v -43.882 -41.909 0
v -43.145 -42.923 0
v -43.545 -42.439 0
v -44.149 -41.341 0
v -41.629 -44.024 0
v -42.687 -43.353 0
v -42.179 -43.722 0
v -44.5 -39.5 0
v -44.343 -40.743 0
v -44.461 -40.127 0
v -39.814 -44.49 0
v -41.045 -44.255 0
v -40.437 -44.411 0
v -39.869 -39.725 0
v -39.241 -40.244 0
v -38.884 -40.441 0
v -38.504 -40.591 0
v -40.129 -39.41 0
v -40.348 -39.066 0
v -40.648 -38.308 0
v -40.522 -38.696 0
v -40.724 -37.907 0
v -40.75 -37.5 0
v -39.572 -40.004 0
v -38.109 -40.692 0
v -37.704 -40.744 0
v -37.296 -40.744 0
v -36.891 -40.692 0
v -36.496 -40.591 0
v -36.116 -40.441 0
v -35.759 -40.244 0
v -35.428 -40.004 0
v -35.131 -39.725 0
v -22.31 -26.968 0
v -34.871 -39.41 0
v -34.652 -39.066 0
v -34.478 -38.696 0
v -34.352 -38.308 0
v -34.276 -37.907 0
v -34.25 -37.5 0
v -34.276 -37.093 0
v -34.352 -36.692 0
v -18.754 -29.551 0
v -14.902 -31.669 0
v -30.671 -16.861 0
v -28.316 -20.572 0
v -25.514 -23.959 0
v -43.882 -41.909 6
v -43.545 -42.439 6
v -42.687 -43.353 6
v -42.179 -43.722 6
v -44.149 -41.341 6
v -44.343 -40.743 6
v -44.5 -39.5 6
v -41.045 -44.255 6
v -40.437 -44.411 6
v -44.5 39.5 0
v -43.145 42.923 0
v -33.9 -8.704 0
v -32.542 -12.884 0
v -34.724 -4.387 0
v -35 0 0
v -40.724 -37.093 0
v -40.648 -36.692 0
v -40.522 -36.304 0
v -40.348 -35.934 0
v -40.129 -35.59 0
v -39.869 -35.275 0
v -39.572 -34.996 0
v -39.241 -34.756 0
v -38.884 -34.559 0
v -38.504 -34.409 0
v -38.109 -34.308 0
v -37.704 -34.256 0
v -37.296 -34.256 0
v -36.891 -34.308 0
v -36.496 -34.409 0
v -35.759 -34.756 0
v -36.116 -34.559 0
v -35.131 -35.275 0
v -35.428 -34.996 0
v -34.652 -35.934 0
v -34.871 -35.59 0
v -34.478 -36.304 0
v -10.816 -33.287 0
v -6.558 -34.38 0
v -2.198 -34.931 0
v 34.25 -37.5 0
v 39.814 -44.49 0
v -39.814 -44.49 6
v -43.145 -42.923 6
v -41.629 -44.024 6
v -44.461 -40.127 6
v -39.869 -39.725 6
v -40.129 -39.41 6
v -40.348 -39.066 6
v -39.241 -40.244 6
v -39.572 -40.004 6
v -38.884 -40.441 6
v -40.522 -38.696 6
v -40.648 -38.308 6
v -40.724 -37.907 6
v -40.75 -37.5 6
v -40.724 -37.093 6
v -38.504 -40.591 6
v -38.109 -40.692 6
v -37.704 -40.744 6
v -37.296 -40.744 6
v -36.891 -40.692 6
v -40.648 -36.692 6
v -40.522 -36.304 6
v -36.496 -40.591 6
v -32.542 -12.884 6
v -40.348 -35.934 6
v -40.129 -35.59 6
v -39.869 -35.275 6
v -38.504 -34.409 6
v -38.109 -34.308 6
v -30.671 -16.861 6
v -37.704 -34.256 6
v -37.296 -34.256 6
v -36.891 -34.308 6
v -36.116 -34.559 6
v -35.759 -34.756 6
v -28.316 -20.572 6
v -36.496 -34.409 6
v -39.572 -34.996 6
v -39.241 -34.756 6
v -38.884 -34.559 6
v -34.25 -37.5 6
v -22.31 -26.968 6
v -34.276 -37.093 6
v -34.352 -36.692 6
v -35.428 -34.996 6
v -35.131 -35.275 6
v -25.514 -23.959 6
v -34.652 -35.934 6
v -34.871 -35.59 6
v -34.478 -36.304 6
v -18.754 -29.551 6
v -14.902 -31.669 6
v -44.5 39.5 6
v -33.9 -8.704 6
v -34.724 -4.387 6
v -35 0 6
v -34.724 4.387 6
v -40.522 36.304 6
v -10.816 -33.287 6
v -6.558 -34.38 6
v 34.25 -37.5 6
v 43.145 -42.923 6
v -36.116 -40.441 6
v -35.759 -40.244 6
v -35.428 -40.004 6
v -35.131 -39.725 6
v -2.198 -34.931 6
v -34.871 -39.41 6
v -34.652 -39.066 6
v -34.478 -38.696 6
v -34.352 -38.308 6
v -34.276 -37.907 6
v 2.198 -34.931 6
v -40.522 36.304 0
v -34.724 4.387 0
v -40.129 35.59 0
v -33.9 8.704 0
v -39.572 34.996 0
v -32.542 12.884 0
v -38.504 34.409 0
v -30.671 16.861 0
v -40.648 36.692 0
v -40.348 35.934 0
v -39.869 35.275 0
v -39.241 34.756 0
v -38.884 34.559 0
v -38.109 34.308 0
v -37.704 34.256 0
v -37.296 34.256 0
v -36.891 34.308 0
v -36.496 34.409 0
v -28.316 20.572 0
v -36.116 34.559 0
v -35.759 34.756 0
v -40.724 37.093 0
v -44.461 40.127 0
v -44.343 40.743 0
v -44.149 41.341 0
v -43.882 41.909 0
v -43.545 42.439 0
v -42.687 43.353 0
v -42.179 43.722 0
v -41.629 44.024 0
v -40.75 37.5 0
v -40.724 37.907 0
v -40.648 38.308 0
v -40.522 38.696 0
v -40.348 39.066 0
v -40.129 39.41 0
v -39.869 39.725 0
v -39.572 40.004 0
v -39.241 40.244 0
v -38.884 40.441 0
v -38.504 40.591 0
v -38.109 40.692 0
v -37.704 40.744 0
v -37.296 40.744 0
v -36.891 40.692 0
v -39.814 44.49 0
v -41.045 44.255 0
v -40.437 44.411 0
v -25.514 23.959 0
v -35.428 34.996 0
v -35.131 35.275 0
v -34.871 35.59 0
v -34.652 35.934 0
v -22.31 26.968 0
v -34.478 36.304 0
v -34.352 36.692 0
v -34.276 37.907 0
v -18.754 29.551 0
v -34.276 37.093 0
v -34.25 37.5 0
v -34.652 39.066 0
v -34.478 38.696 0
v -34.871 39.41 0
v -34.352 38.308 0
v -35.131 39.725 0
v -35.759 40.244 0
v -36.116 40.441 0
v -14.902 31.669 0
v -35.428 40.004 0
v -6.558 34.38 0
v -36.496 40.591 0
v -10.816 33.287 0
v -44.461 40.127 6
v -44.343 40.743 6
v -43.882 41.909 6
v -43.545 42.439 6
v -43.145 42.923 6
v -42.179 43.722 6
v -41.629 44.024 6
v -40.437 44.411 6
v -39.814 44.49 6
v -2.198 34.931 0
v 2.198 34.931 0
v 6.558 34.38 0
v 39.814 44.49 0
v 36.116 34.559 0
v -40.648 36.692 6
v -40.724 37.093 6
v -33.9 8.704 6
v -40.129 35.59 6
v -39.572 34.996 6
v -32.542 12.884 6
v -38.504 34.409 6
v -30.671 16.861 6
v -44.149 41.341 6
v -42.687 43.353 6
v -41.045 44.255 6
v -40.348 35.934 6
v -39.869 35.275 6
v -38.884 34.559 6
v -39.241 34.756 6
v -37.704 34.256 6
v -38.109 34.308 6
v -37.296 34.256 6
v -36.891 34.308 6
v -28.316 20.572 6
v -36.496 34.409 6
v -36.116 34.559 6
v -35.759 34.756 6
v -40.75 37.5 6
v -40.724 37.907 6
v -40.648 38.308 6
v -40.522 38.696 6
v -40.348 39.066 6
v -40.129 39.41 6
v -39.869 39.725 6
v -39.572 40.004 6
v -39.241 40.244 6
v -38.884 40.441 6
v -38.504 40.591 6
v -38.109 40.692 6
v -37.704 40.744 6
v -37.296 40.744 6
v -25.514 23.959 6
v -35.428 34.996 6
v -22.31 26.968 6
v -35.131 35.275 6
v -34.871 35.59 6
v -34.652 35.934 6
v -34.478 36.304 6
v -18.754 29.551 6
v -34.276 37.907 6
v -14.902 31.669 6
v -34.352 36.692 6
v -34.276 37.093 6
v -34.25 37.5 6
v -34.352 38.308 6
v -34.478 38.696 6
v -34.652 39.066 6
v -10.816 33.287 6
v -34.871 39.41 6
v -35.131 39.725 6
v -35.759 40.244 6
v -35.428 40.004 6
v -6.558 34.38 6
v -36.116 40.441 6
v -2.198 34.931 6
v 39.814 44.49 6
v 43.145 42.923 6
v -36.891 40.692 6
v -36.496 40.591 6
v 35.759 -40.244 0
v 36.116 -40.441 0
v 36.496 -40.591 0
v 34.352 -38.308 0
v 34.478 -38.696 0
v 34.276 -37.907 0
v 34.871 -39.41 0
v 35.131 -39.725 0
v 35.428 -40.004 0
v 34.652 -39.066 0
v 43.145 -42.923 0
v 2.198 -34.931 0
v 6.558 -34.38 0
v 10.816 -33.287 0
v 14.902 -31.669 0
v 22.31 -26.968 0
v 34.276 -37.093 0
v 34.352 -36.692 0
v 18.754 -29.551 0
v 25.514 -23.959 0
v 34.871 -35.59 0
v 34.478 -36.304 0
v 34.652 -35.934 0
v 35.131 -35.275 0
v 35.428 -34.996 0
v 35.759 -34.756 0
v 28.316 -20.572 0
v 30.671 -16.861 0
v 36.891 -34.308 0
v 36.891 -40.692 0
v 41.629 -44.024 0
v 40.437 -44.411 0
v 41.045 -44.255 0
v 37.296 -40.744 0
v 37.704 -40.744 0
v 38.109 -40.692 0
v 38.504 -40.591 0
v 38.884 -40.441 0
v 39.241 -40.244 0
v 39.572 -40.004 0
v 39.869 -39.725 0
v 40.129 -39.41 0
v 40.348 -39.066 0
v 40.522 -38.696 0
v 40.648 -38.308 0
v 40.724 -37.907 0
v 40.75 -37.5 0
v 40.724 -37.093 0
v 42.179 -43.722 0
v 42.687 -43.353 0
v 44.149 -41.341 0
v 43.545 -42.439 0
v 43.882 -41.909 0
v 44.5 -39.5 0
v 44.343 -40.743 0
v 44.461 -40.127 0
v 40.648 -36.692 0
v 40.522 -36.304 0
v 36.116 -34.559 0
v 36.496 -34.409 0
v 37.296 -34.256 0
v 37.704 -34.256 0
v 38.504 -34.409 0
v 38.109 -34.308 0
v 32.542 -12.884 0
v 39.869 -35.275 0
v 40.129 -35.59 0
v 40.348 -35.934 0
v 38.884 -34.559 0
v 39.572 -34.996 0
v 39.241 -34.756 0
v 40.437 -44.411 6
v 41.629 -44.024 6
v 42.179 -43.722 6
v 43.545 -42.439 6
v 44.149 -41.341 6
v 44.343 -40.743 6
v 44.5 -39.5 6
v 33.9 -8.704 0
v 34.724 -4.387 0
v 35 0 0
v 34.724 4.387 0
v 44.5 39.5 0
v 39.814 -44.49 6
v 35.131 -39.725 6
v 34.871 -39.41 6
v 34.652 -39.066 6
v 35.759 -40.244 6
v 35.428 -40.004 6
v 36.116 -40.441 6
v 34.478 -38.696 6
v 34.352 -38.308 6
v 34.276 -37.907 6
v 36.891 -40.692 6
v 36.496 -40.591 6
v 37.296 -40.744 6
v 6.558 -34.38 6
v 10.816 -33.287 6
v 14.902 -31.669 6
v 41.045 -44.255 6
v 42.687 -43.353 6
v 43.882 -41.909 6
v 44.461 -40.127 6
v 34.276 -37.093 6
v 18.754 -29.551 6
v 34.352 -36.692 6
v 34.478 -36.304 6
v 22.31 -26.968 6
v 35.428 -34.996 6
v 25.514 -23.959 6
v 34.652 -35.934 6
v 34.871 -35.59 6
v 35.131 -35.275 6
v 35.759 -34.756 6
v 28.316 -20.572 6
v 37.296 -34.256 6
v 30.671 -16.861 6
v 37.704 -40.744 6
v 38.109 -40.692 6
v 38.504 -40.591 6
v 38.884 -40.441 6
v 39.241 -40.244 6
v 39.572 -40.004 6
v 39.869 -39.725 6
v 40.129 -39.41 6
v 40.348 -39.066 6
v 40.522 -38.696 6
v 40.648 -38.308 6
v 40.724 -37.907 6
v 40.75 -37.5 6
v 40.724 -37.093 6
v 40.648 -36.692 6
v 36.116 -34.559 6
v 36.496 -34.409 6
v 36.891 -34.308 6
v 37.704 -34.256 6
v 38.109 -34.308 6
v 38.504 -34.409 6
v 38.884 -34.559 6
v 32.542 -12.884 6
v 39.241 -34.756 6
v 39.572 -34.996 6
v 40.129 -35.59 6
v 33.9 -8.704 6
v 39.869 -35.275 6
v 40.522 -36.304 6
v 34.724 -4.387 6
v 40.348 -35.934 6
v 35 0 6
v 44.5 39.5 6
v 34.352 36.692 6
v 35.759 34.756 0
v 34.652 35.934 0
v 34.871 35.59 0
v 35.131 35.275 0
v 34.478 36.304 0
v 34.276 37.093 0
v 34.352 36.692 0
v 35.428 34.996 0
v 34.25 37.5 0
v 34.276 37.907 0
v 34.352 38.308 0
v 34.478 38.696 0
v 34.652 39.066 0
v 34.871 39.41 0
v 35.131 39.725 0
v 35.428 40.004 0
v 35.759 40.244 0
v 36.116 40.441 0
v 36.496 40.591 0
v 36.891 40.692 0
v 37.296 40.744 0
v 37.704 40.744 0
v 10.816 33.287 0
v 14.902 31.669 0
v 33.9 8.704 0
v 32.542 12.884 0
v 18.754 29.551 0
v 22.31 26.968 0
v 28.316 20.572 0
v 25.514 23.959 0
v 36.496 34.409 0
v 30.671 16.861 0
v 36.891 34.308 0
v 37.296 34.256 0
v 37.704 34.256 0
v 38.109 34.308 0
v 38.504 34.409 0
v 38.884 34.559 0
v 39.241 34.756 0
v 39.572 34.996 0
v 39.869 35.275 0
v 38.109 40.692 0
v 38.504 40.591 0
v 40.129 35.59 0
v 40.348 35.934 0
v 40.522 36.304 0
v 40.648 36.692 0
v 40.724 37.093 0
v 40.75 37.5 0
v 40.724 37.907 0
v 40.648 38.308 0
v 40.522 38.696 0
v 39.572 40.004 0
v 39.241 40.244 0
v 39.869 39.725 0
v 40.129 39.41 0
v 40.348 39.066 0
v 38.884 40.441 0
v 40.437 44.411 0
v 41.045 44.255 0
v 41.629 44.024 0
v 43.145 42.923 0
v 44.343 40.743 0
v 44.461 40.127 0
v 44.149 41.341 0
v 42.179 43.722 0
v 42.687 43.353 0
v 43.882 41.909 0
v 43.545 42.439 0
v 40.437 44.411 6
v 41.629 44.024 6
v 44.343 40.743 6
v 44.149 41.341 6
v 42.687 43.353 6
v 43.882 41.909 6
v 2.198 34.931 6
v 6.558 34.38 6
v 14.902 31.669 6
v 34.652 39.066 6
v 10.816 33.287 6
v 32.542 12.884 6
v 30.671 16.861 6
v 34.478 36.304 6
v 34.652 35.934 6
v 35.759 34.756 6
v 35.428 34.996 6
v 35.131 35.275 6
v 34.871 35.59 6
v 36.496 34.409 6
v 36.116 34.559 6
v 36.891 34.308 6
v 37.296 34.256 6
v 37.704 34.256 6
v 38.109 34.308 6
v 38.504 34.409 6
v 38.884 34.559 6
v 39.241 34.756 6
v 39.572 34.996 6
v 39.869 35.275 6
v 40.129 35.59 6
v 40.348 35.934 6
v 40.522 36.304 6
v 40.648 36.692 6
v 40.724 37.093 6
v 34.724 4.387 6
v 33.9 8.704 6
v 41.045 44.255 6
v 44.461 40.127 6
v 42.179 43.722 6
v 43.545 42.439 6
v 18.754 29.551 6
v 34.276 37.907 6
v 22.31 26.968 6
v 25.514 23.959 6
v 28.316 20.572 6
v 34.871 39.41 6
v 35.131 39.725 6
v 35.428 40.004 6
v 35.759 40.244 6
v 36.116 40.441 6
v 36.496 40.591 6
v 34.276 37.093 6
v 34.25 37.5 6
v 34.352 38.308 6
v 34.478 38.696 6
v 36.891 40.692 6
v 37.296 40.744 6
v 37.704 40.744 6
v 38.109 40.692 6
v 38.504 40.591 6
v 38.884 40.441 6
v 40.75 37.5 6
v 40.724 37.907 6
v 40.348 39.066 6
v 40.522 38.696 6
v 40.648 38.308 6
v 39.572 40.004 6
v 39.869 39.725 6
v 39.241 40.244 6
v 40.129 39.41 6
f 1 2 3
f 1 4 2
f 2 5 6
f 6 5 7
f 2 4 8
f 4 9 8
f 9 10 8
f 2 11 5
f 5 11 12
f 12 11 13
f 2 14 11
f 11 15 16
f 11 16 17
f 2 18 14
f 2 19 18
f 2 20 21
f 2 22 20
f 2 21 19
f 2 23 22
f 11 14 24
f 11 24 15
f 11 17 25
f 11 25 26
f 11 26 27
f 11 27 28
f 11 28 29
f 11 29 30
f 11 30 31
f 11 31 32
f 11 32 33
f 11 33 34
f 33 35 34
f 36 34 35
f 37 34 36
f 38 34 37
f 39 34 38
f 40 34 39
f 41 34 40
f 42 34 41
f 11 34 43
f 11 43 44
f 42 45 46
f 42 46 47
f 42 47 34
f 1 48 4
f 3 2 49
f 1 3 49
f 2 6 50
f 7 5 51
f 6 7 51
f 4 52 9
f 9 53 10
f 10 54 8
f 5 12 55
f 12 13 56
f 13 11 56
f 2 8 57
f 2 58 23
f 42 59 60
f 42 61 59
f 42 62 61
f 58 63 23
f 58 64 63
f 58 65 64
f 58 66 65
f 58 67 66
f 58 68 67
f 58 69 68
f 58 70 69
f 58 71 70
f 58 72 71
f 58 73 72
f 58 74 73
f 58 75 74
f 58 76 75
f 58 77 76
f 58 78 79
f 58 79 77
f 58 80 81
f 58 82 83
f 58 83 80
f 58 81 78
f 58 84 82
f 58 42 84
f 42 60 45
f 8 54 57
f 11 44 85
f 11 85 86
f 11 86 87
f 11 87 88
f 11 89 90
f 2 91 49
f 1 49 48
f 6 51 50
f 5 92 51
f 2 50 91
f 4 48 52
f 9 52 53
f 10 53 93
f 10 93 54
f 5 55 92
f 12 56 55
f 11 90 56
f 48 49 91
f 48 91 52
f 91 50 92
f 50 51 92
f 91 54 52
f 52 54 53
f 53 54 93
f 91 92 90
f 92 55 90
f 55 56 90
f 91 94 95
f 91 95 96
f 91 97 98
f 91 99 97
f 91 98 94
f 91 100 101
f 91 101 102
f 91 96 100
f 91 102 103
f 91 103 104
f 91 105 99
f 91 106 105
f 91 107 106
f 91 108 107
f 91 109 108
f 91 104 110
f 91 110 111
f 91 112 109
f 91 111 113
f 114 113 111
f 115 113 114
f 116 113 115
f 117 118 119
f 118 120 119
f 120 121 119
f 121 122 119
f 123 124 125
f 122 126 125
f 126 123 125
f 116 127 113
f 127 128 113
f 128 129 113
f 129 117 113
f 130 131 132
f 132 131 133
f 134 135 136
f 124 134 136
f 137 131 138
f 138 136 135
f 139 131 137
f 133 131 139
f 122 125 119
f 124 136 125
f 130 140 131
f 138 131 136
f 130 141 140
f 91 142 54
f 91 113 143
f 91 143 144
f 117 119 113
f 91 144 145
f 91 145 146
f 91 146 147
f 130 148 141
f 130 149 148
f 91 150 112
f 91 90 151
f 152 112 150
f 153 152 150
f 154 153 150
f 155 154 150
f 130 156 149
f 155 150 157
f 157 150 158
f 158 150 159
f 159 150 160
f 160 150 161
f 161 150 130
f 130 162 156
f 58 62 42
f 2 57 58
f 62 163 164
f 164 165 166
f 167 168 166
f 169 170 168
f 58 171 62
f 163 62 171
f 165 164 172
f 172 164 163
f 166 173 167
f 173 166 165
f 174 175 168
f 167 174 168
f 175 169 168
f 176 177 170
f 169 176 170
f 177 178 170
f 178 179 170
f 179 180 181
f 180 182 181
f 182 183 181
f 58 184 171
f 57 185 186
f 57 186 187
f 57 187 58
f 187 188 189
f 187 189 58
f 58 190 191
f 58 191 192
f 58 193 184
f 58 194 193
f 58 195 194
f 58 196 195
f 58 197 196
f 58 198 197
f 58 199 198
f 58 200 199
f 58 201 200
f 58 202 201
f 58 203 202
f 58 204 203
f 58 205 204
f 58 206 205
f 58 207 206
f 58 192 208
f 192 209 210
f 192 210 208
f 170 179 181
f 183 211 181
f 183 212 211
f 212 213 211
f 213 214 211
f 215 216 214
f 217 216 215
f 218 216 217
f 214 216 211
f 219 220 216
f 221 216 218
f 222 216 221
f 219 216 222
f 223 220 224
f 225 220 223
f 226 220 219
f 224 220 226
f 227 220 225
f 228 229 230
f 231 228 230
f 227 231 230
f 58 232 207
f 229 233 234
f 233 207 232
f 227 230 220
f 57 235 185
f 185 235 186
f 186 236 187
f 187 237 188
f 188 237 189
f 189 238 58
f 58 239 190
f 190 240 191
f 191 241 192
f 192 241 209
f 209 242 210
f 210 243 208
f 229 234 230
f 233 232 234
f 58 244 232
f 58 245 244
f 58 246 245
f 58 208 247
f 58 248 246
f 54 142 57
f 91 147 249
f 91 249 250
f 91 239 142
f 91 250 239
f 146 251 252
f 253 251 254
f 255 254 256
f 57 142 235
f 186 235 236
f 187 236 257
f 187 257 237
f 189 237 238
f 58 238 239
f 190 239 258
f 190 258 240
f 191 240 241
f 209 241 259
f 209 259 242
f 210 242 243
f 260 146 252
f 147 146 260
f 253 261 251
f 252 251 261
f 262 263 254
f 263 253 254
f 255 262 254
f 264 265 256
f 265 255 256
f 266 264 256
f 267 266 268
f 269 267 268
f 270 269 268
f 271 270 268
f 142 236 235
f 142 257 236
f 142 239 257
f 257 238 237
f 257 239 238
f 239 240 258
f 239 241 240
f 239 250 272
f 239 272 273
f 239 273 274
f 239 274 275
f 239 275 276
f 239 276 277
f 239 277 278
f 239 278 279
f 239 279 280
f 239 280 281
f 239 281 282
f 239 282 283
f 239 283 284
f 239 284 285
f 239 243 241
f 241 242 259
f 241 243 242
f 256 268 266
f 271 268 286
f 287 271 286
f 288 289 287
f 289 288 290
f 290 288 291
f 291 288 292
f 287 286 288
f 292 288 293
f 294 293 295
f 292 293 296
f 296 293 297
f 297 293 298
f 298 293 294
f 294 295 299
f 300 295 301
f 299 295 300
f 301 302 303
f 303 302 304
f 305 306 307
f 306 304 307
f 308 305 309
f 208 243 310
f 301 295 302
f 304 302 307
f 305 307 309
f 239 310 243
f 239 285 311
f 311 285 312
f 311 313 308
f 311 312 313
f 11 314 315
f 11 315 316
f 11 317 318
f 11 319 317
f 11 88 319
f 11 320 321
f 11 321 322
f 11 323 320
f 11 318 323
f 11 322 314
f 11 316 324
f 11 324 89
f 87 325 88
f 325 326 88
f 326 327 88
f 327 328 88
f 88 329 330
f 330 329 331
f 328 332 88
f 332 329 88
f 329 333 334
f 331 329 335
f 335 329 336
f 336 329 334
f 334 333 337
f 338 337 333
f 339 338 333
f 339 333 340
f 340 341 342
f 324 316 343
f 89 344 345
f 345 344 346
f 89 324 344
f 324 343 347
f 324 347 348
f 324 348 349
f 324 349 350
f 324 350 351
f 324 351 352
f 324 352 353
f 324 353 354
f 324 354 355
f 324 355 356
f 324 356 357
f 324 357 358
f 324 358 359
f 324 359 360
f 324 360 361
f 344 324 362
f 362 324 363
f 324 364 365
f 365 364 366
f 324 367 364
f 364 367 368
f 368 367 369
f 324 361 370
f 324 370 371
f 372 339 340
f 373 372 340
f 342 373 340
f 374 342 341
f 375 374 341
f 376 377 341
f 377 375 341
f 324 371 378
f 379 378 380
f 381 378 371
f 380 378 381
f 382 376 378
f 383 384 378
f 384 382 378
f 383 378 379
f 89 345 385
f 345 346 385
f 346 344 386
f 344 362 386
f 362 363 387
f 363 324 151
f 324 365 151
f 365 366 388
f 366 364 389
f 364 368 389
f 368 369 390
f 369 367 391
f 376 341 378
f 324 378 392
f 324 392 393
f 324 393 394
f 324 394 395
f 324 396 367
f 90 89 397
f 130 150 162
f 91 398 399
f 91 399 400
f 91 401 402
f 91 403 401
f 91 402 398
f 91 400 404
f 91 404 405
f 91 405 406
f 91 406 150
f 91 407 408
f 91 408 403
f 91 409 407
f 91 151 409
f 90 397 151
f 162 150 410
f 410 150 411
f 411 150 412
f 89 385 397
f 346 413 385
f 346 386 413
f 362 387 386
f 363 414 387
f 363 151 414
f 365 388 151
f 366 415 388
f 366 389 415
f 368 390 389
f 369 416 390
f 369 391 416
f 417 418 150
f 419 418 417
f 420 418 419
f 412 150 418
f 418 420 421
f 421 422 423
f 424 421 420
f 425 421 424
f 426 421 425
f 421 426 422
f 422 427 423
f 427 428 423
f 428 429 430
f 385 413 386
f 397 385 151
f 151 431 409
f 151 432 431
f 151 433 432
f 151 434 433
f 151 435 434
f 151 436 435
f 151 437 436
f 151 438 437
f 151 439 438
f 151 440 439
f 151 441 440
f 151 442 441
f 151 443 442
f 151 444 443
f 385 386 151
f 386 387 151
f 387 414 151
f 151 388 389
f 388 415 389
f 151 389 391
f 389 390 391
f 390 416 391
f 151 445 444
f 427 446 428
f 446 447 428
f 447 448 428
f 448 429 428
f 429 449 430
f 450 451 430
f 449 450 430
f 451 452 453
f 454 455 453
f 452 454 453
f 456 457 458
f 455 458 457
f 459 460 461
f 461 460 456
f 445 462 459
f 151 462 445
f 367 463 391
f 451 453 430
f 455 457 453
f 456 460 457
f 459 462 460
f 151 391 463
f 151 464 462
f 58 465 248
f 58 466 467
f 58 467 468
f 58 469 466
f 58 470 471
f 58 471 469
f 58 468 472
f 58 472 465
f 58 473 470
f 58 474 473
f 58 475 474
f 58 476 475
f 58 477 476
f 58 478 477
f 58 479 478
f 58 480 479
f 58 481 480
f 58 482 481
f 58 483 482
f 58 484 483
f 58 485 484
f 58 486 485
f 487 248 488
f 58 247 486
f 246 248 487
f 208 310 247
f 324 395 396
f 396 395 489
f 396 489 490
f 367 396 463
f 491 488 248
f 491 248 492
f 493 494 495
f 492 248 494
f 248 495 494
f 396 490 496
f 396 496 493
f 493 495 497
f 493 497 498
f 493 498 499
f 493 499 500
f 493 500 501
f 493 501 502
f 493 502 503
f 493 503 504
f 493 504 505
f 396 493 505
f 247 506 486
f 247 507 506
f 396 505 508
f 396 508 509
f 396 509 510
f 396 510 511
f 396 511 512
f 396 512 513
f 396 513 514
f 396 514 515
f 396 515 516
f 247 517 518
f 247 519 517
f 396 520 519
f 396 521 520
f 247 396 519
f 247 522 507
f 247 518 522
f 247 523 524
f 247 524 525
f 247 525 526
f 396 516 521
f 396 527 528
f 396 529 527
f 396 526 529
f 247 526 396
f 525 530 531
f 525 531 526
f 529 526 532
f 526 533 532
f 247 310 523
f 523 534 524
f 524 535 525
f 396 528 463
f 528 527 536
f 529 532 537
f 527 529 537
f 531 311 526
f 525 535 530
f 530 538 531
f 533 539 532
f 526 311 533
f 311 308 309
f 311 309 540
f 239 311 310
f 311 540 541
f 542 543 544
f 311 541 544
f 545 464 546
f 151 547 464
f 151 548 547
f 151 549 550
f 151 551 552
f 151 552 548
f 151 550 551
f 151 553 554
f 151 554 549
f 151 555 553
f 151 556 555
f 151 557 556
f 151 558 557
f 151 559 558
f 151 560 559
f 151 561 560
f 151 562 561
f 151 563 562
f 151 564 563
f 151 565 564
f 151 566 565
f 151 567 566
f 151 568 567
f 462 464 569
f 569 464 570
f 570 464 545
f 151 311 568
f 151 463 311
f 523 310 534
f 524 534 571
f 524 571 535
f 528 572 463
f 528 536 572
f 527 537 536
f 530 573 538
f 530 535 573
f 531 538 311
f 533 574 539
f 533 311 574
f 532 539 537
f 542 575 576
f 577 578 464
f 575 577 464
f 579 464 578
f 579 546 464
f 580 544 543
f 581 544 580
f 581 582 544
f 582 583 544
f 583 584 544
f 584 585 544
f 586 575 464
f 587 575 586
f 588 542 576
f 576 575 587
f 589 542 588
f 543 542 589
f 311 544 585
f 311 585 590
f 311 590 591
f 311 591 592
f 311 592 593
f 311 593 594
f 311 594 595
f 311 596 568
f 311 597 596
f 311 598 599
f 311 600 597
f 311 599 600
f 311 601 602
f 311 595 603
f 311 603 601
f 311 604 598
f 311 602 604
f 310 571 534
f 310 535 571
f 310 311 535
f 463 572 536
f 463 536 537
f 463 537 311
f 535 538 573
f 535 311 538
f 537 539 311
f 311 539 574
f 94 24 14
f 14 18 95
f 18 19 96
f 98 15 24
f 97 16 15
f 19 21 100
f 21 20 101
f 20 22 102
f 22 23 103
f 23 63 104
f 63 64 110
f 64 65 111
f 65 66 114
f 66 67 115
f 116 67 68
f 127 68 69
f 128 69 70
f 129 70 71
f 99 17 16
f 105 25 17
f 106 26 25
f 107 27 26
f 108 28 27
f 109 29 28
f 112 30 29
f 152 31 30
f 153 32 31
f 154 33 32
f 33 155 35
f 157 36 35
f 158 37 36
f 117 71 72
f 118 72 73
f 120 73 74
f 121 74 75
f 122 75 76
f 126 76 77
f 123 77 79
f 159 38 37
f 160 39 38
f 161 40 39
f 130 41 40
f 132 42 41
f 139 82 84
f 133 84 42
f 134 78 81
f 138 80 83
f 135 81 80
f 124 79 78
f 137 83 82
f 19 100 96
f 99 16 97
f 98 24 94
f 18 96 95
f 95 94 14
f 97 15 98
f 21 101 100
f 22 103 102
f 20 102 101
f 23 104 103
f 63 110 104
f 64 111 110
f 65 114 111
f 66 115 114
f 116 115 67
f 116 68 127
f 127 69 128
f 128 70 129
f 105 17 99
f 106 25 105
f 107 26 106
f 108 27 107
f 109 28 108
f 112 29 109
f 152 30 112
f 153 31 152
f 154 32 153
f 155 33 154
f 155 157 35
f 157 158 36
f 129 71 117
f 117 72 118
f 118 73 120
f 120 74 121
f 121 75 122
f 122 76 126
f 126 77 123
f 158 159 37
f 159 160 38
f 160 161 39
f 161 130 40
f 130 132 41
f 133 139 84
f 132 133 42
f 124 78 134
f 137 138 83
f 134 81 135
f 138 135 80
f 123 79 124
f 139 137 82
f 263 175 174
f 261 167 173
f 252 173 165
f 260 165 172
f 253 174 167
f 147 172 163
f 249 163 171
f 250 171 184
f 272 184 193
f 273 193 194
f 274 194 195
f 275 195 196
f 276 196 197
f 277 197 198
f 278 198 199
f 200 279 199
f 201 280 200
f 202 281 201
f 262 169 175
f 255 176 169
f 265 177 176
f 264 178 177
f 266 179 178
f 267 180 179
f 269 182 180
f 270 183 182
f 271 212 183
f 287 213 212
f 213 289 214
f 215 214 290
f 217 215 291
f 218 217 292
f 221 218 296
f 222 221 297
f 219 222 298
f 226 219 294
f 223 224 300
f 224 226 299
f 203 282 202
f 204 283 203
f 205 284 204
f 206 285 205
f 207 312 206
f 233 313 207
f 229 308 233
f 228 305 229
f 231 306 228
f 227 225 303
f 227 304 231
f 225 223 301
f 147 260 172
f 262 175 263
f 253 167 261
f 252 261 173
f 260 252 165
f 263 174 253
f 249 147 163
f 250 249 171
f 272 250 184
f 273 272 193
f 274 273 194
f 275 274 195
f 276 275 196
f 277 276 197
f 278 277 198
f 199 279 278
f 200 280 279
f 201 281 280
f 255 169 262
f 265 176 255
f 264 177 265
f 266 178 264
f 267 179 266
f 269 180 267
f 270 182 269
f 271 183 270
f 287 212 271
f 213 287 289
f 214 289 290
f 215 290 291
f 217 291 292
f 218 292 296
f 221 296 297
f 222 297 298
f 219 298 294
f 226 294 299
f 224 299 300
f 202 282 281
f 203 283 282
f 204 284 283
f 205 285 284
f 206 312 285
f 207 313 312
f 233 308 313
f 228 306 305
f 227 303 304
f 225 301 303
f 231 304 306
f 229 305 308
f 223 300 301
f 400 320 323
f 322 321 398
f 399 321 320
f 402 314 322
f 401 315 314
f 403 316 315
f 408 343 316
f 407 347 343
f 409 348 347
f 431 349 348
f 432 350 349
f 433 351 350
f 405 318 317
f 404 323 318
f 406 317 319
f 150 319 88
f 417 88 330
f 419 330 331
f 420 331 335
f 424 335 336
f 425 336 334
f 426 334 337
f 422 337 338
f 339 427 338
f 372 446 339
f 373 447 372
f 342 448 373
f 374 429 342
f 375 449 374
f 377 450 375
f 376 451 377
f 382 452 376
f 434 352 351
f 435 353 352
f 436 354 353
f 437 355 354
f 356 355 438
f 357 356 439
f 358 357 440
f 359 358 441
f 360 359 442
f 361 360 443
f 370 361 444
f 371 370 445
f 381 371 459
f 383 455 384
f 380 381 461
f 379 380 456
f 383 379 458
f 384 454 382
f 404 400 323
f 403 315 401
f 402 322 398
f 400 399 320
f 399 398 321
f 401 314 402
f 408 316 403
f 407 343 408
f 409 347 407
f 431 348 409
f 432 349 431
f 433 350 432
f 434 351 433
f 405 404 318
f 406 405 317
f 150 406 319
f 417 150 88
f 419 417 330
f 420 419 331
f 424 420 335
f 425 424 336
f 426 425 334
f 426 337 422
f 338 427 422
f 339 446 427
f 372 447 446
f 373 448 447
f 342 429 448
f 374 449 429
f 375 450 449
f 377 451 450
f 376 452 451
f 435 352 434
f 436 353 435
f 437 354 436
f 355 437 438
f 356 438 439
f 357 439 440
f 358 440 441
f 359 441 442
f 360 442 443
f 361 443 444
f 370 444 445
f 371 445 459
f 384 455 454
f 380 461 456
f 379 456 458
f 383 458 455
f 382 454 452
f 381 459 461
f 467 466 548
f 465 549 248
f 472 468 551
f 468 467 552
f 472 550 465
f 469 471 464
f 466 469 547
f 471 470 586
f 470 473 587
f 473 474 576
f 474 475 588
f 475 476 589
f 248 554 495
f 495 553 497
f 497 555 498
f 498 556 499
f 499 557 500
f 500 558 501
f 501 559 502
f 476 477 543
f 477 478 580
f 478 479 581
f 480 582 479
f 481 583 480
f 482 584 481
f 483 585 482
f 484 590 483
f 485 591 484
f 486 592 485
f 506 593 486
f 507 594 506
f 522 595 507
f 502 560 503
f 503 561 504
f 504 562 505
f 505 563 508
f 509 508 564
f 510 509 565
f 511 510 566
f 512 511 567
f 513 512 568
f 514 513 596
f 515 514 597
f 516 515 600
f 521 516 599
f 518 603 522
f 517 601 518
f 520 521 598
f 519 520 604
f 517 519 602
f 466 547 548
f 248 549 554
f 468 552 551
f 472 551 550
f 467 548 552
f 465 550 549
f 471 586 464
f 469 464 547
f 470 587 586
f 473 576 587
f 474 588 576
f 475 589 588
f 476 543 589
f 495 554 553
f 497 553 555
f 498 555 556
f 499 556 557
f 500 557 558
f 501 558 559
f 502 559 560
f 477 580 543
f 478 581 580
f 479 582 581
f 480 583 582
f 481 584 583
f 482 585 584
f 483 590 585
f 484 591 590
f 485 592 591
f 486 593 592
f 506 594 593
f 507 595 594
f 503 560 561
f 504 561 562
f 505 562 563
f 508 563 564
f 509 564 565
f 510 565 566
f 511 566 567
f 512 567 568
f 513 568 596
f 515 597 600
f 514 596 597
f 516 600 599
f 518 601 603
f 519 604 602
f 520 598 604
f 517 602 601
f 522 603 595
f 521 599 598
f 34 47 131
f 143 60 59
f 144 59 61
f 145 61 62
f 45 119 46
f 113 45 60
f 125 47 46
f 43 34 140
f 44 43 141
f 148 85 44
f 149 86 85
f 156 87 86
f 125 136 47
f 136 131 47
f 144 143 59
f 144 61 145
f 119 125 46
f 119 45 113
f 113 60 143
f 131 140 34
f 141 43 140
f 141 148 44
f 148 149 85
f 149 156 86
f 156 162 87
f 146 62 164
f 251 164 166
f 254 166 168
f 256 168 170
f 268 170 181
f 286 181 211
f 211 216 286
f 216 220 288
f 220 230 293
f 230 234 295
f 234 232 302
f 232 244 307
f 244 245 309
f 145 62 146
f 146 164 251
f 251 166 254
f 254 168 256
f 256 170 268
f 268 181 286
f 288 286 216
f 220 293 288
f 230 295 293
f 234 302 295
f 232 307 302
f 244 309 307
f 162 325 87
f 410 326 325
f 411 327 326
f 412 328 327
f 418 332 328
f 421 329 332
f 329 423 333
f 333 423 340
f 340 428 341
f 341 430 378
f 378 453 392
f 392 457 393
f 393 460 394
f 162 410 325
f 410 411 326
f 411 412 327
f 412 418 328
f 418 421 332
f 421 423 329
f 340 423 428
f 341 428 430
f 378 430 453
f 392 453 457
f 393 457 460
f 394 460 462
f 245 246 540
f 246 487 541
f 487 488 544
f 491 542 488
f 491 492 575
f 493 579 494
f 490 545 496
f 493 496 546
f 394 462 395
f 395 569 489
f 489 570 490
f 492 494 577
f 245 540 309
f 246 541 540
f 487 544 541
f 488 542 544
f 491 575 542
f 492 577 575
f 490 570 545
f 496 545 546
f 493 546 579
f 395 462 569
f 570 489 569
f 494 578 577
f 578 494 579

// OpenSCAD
$fn = 50;

difference() {
	union() {
		hull() {
			translate(v = [-39.5, 39.5, 0]) {
				cylinder(h = 6, r = 5);
			}
			translate(v = [39.5, 39.5, 0]) {
				cylinder(h = 6, r = 5);
			}
			translate(v = [-39.5, -39.5, 0]) {
				cylinder(h = 6, r = 5);
			}
			translate(v = [39.5, -39.5, 0]) {
				cylinder(h = 6, r = 5);
			}
		}
	}
	union() {
		translate(v = [-37.5, -37.5, -100.0]) {
			cylinder(h = 200, r = 3.25);
		}
		translate(v = [-37.5, 37.5, -100.0]) {
			cylinder(h = 200, r = 3.25);
		}
		translate(v = [37.5, -37.5, -100.0]) {
			cylinder(h = 200, r = 3.25);
		}
		translate(v = [37.5, 37.5, -100.0]) {
			cylinder(h = 200, r = 3.25);
		}
		translate(v = [-37.5, -37.5, -100.0]) {
			cylinder(h = 200, r = 1.8);
		}
		translate(v = [-37.5, 37.5, -100.0]) {
			cylinder(h = 200, r = 1.8);
		}
		translate(v = [37.5, -37.5, -100.0]) {
			cylinder(h = 200, r = 1.8);
		}
		translate(v = [37.5, 37.5, -100.0]) {
			cylinder(h = 200, r = 1.8);
		}
		cylinder(h = 6, r = 35.0);
	}
}
